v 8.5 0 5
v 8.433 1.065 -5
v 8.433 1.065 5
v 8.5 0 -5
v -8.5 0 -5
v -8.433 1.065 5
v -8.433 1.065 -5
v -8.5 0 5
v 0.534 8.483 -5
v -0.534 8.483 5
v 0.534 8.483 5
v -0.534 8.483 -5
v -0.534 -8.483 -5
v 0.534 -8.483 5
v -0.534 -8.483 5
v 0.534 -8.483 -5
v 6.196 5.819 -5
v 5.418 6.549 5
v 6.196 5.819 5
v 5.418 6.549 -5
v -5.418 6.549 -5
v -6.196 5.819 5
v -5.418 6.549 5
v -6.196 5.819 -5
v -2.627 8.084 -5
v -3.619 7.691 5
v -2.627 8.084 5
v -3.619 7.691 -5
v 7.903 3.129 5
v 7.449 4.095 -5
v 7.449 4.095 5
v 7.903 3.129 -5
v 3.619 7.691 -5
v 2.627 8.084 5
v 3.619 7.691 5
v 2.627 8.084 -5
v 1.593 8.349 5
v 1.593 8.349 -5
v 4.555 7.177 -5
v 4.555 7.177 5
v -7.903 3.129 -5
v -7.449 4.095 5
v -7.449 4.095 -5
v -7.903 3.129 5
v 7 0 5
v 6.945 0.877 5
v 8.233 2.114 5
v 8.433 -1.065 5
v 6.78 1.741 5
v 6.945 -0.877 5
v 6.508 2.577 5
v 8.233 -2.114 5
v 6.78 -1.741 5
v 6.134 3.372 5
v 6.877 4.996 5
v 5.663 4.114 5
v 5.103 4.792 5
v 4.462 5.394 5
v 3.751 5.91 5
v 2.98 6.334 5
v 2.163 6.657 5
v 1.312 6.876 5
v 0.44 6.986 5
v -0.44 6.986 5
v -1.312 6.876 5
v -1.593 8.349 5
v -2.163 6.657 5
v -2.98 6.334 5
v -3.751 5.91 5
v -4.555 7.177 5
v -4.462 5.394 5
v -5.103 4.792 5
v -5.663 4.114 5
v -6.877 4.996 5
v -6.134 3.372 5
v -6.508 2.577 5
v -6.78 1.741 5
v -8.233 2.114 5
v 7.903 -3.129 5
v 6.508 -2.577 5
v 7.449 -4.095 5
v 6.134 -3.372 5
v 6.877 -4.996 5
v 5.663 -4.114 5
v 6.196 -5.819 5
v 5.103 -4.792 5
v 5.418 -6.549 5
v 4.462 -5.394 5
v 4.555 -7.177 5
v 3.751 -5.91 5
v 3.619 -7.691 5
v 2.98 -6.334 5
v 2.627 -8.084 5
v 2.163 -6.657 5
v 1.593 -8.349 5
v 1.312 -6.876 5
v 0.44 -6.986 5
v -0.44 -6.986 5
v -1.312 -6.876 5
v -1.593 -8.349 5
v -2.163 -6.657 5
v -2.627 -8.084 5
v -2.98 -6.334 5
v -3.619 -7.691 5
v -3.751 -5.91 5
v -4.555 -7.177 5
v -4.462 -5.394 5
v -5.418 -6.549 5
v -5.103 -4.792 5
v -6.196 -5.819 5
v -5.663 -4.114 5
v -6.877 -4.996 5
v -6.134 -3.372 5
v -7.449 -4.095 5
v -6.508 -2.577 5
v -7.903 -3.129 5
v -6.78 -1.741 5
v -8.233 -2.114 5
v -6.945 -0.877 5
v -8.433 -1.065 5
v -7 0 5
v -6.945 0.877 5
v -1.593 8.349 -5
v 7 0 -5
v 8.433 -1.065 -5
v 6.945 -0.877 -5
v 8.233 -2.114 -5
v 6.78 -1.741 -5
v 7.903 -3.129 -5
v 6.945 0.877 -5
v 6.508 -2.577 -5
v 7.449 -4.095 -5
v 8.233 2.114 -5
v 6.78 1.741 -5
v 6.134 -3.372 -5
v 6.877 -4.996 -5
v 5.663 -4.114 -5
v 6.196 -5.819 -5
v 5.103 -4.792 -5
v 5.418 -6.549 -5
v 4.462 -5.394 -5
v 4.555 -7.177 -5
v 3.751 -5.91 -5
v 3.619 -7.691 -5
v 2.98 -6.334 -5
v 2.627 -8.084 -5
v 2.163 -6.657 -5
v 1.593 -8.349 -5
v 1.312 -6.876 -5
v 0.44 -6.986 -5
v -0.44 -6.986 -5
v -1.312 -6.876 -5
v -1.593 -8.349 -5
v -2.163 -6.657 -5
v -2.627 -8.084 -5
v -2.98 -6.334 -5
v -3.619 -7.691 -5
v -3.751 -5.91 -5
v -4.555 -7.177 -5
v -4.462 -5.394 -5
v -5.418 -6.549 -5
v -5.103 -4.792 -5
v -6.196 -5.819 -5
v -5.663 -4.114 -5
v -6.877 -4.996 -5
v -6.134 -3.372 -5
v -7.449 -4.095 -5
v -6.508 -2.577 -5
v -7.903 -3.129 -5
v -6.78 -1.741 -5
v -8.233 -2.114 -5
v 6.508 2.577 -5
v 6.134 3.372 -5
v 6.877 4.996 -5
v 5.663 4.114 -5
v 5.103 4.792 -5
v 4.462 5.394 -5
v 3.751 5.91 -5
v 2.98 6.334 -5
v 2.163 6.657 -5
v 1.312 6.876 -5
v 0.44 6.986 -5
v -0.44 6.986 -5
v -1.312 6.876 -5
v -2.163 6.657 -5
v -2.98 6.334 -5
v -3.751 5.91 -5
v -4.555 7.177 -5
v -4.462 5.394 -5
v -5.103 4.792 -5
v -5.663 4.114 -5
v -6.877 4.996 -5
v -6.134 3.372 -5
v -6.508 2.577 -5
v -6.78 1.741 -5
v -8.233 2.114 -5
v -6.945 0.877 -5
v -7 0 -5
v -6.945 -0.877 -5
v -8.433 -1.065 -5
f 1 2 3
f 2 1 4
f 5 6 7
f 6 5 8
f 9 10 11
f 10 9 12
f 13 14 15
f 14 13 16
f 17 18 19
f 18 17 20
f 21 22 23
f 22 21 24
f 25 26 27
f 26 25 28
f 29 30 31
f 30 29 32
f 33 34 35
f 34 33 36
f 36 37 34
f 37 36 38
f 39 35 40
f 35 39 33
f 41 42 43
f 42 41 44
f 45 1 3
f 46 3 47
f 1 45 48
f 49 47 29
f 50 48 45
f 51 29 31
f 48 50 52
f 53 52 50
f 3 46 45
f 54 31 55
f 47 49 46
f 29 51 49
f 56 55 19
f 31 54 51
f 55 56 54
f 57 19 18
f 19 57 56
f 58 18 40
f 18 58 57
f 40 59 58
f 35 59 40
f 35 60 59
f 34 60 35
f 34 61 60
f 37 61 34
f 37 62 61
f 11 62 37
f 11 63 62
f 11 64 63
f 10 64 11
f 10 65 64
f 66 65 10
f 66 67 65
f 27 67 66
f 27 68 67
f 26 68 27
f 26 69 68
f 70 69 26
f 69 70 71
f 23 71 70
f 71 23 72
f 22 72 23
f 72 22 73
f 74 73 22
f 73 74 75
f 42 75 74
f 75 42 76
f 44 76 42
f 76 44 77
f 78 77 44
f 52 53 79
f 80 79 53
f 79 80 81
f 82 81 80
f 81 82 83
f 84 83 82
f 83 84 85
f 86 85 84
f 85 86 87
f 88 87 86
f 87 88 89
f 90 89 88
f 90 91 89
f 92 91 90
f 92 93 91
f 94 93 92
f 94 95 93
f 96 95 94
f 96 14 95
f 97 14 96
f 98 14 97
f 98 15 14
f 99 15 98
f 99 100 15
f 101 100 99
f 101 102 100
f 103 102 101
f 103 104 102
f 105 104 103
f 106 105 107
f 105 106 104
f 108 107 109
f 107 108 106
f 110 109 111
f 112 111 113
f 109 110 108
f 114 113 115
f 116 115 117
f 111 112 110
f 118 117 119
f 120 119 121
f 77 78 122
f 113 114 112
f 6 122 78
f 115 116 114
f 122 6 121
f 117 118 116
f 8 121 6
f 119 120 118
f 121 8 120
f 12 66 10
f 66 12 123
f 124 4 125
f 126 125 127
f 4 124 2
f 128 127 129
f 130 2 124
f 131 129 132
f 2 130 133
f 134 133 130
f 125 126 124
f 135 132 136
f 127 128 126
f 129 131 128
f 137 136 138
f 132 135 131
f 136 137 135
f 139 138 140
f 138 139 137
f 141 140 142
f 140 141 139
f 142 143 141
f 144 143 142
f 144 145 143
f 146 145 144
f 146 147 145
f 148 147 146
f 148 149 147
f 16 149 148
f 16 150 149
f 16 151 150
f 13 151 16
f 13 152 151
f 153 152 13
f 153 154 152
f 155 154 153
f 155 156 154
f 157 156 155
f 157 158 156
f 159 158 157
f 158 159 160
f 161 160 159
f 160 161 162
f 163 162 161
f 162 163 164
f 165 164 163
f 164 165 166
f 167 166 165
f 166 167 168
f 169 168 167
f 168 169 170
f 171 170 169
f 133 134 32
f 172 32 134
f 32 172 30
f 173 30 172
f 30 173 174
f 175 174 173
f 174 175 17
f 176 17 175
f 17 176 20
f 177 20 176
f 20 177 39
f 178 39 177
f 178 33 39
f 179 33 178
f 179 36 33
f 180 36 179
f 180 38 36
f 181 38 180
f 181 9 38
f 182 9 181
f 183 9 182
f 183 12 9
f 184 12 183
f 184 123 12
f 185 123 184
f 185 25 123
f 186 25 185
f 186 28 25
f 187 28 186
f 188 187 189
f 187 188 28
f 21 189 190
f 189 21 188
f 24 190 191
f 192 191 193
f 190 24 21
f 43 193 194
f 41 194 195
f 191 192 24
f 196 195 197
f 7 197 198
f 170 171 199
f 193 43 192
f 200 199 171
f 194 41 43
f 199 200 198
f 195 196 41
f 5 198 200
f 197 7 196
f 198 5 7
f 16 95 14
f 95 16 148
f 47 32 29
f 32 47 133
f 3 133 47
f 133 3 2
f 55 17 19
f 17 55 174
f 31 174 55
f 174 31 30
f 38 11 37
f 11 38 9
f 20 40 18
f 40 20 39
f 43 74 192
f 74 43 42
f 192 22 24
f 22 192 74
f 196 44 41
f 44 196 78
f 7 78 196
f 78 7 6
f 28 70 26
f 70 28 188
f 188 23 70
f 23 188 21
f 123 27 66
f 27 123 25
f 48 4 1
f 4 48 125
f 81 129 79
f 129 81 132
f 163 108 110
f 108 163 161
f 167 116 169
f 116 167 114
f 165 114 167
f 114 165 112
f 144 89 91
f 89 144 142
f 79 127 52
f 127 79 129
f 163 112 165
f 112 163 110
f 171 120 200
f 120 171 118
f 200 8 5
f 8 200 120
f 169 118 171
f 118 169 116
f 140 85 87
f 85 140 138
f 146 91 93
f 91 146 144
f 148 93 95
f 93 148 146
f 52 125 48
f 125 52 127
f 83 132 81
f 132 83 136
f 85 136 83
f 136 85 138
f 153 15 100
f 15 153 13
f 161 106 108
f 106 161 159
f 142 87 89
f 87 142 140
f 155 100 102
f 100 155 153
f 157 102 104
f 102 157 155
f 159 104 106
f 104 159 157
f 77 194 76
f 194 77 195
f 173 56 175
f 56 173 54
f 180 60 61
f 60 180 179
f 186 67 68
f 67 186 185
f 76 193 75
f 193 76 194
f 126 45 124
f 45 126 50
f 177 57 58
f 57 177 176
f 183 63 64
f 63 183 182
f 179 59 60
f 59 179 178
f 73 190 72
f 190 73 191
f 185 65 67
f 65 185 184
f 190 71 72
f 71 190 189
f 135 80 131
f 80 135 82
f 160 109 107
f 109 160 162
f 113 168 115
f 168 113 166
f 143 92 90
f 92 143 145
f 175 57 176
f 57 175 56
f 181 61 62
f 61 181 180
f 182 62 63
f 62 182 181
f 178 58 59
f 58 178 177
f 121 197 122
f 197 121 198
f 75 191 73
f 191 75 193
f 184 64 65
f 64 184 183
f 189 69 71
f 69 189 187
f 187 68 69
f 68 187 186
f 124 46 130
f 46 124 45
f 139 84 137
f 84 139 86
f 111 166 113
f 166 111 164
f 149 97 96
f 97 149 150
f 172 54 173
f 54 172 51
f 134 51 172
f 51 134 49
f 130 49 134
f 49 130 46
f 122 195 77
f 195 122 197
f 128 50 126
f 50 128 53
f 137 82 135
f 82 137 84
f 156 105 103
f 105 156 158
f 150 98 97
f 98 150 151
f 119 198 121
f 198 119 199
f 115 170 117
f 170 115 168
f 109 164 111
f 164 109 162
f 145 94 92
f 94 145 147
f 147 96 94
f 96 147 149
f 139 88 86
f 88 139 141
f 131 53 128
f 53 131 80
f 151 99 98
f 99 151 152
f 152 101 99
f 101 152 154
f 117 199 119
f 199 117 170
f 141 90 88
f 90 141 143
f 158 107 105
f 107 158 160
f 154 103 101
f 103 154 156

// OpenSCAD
$fn = 50;


difference() {
	union() {
		translate(v = [0, 0, -5.0000000000]) {
			cylinder(h = 10, r = 8.5000000000);
		}
	}
	union() {
		translate(v = [0, 0, -100.0000000000]) {
			cylinder(h = 200, r = 7);
		}
	}
}
